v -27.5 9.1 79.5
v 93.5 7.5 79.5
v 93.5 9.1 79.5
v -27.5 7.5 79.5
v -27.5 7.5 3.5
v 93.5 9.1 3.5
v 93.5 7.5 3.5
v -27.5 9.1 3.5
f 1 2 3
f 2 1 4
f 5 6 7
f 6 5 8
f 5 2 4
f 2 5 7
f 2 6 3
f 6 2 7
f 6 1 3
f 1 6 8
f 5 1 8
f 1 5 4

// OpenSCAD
// file: D:/Projects/assembly-workshop/outputs/Screen_Pi_Hue_SCR5-H_2026-10-30/checks/geometry.scad
// SCR5-G; mm; FRONT view: X right, Z up, Y into rack. Glass/plate front Y=0.
// Measured values: work/screen-5in/Dimensions.md. Physical fit/strength UNKNOWN.
part="plate";
DROP=0.45; // coupon winner can be substituted here; all three pins use this DROP
LIP=0.8; LIP_ON=true;
LIP_EDGES=[true,true,false,false]; // left,right,bottom,top; Brian: side lips only, cosmetic
FRAME_STEP=1.5; // measured glass-edge inset to metal LCD frame, left/right only
SHIM=0; // moves rear frame seat and plate-boss mating face back
$fn=48;
GCX=33; GCZ=41.5; PW=252; PH=88.8; PT=4;
GW=120.7; GH=77.2; CLEAR=0.2; WW=GW+2*CLEAR; WH=GH+2*CLEAR;
SEAT=13.3+SHIM; FT=3;
SO=[56.45,34]; BTN_X=[45.5,35.5,25.5];
PCB_TOP=38; GAP=0.10; LEAF_T=0.8;
HOLE=[3.4,40.3,44.7];
BX=[GCX-68,GCX+68]; BZ=[10,72];
// DSI connector X extent is unmeasured: conservative assumed 8 mm inward from PCB edge.
DSI=[GCX-60.5,9.1,GCZ-38+30,8,5.25,21];
module xz(y,d){translate([0,y+d,0])rotate([90,0,0])linear_extrude(d)children();}
// rr/rack_slots copied from SCR5-F; same exact slot centres, outline shifted -0.05 Z to centre 44.4.
module rr(w,h,r){hull()for(x=[-w/2+r,w/2-r],z=[-h/2+r,h/2-r])translate([x,z])circle(r=r);}
module rack_slots(){for(x=[-118.2625,118.2625],z=[6.323,38.127,50.773,82.577])translate([x,z])hull()for(dx=[-1.5,1.5])translate([dx,0])circle(d=7);}
module cyl_y(x,y,z,d,h){translate([x,y,z])rotate([-90,0,0])cylinder(d=d,h=h);}
module window_cut(){
  xz(-0.02,4.04)translate([GCX,GCZ])square([WW,WH],center=true);
  // 0.3 x 45-degree chamfer, square corners, front only.
  translate([GCX,0.3,GCZ])rotate([90,0,0])
    linear_extrude(height=0.3,scale=[(WW+0.6)/WW,(WH+0.6)/WH])square([WW,WH],center=true);
}
module lips(){
  // Cosmetic side ledges only; rear frame/standoffs set depth and retain the screen.
  if(LIP_ON)for(i=[0:3])if(LIP_EDGES[i]){
    if(i<2)translate([GCX+(i==0?-WW/2:WW/2-LIP),2.5,GCZ-GH/2+4])cube([LIP,0.8,GH-8]);
    else translate([GCX-GW/2+4,2.5,GCZ+(i==2?-WH/2:WH/2-LIP)])cube([GW-8,0.8,LIP]);
  }
}
// Leaf/nub/bump geometry copied from SCR5-WP-A, translated to this glass centre.
module leaves(){for(x=BTN_X)translate([GCX+x-1.5,0,GCZ]){
  translate([0,0,PCB_TOP+GAP+0.9+0.1])cube([3,11.8,LEAF_T]);
  translate([0,10.2,PCB_TOP+GAP])cube([3,1.4,1.0+LEAF_T/2]);
  translate([0,10.4,PCB_TOP+GAP+1.0+LEAF_T])cube([3,1.0,0.9]);
}}
module plate(){difference(){union(){
  difference(){xz(0,PT)translate([0,PH/2])rr(PW,PH,2.5);window_cut();}
  for(x=BX,z=BZ)cyl_y(x,3.9,z,8,SEAT-3.9);
  leaves(); lips();
 }
 xz(-0.02,4.04)rack_slots();
 for(x=BTN_X)translate([GCX+x-HOLE[0]/2,-0.02,GCZ+HOLE[1]])cube([HOLE[0],SEAT+FT+0.04,HOLE[2]-HOLE[1]]);
 // Printed-in screw pilots (no heat-set OD assumption): nominal M2.5, fit UNKNOWN.
 for(x=BX,z=BZ)cyl_y(x,SEAT-6,z,2.1,6.02);
 // Rear engraving, 0.5 deep, left field.
 xz(3.5,0.52)translate([-75,40])mirror([1,0])text("SCR5-G",size=6,halign="center",font="Liberation Sans:style=Bold");
}}
module frame_blank(){
  // C-shaped perimeter; no material across the board centre / touch FPC.
  xz(SEAT,FT)translate([GCX,GCZ])difference(){square([132,76],center=true);square([116,60],center=true);}
  for(sx=[-1,1],sz=[-1,1])cyl_y(GCX+sx*SO[0],SEAT,GCZ+sz*SO[1],9,FT);
  for(x=BX,z=BZ)hull(){cyl_y(x,SEAT,z,8,FT);cyl_y(GCX+(x<GCX?-62:62),SEAT,z,8,FT);}
}
module dsi_keepout(){translate([DSI[0]-3,DSI[1]-3,DSI[2]-3])cube([DSI[3]+6,DSI[4]+6,DSI[5]+6]);}
module ribbon_route(){
  // Open left/up corridor 18 mm wide; extends past top of plate.
  translate([GCX-84,6.1,GCZ-11])cube([18,24,65]);
  translate([GCX-84,6.1,GCZ-11])cube([32,24,27]);
}
module frame(){difference(){frame_blank();dsi_keepout();ribbon_route();
 for(sx=[-1,1],sz=[-1,1])cyl_y(GCX+sx*SO[0],SEAT-0.02,GCZ+sz*SO[1],2.8,FT+0.04);
 for(x=BX,z=BZ)cyl_y(x,SEAT-0.02,z,2.8,FT+0.04);
}}
// Pin polygon/cap/notch/dot design copied unchanged from SCR5-WP-A.
module pin(d,dots){s=2*d+0.5;difference(){union(){
 translate([-1.5,0,0])rotate([90,0,90])linear_extrude(3)polygon([
 [-s-0.02,40.5],[10.2,40.5],[10.2,41.0],[11.5,41.0],[11.5+2*d,41.0-d],[15,41.0-d],[15,44.5],[-s-0.02,44.5]]);
 translate([-2.5,-s-1.5,39.6])cube([5,1.5,5.8]);
 }for(i=[0:dots-1])translate([(i-(dots-1)/2)*1.4,-s-1.5-0.01,43.5])rotate([-90,0,0])cylinder(d=0.9,h=0.4);}}
module placed_pin(i){translate([GCX+BTN_X[i],0,GCZ])pin(DROP,i+1);}
// Measured layers: cover glass 0.9 + second glass 1.6, metal frame 3.0,
// open gap 2.0, PCB 1.6. Metal frame inset ~1.5 at LEFT/RIGHT only.
// PCB centred under glass and full metal-frame top/bottom extent remain UNKNOWN.
module glass(){translate([GCX-GW/2,0,GCZ-GH/2])cube([GW,2.5,GH]);}
module lcd(){
  translate([GCX-GW/2+FRAME_STEP,2.5,GCZ-GH/2])cube([GW-2*FRAME_STEP,3.0,GH]);
}
module pcb(){translate([GCX-60.5,7.5,GCZ-38])cube([121,1.6,76]);}
module standoffs(){for(sx=[-1,1],sz=[-1,1])difference(){cyl_y(GCX+sx*SO[0],9.1,GCZ+sz*SO[1],5.5,4.2);cyl_y(GCX+sx*SO[0],9.08,GCZ+sz*SO[1],2.5,4.24);}}
module buttons(){for(x=BTN_X){
 translate([GCX+x-3.5,9.1,GCZ+38-3.4])cube([7,3.6,2.4]);
 translate([GCX+x-1.5,9.1,GCZ+37])cube([3,3.6,1]);
}}
module dsi(){translate([DSI[0],DSI[1],DSI[2]])cube([DSI[3],DSI[4],DSI[5]]);}
module touch(){translate([GCX-10,9.1,GCZ-5])cube([20,2,10]);} // lateral extent unmeasured
module dummy(){glass();lcd();pcb();standoffs();buttons();dsi();touch();}
module assembly(){color("gray")plate();color("orange")frame();for(i=[0:2])color("cyan")placed_pin(i);color([0.2,0.3,0.4,0.4])dummy();}
// main file
include <D:/Projects/assembly-workshop/outputs/Screen_Pi_Hue_SCR5-H_2026-10-30/checks/geometry.scad>
pcb();
